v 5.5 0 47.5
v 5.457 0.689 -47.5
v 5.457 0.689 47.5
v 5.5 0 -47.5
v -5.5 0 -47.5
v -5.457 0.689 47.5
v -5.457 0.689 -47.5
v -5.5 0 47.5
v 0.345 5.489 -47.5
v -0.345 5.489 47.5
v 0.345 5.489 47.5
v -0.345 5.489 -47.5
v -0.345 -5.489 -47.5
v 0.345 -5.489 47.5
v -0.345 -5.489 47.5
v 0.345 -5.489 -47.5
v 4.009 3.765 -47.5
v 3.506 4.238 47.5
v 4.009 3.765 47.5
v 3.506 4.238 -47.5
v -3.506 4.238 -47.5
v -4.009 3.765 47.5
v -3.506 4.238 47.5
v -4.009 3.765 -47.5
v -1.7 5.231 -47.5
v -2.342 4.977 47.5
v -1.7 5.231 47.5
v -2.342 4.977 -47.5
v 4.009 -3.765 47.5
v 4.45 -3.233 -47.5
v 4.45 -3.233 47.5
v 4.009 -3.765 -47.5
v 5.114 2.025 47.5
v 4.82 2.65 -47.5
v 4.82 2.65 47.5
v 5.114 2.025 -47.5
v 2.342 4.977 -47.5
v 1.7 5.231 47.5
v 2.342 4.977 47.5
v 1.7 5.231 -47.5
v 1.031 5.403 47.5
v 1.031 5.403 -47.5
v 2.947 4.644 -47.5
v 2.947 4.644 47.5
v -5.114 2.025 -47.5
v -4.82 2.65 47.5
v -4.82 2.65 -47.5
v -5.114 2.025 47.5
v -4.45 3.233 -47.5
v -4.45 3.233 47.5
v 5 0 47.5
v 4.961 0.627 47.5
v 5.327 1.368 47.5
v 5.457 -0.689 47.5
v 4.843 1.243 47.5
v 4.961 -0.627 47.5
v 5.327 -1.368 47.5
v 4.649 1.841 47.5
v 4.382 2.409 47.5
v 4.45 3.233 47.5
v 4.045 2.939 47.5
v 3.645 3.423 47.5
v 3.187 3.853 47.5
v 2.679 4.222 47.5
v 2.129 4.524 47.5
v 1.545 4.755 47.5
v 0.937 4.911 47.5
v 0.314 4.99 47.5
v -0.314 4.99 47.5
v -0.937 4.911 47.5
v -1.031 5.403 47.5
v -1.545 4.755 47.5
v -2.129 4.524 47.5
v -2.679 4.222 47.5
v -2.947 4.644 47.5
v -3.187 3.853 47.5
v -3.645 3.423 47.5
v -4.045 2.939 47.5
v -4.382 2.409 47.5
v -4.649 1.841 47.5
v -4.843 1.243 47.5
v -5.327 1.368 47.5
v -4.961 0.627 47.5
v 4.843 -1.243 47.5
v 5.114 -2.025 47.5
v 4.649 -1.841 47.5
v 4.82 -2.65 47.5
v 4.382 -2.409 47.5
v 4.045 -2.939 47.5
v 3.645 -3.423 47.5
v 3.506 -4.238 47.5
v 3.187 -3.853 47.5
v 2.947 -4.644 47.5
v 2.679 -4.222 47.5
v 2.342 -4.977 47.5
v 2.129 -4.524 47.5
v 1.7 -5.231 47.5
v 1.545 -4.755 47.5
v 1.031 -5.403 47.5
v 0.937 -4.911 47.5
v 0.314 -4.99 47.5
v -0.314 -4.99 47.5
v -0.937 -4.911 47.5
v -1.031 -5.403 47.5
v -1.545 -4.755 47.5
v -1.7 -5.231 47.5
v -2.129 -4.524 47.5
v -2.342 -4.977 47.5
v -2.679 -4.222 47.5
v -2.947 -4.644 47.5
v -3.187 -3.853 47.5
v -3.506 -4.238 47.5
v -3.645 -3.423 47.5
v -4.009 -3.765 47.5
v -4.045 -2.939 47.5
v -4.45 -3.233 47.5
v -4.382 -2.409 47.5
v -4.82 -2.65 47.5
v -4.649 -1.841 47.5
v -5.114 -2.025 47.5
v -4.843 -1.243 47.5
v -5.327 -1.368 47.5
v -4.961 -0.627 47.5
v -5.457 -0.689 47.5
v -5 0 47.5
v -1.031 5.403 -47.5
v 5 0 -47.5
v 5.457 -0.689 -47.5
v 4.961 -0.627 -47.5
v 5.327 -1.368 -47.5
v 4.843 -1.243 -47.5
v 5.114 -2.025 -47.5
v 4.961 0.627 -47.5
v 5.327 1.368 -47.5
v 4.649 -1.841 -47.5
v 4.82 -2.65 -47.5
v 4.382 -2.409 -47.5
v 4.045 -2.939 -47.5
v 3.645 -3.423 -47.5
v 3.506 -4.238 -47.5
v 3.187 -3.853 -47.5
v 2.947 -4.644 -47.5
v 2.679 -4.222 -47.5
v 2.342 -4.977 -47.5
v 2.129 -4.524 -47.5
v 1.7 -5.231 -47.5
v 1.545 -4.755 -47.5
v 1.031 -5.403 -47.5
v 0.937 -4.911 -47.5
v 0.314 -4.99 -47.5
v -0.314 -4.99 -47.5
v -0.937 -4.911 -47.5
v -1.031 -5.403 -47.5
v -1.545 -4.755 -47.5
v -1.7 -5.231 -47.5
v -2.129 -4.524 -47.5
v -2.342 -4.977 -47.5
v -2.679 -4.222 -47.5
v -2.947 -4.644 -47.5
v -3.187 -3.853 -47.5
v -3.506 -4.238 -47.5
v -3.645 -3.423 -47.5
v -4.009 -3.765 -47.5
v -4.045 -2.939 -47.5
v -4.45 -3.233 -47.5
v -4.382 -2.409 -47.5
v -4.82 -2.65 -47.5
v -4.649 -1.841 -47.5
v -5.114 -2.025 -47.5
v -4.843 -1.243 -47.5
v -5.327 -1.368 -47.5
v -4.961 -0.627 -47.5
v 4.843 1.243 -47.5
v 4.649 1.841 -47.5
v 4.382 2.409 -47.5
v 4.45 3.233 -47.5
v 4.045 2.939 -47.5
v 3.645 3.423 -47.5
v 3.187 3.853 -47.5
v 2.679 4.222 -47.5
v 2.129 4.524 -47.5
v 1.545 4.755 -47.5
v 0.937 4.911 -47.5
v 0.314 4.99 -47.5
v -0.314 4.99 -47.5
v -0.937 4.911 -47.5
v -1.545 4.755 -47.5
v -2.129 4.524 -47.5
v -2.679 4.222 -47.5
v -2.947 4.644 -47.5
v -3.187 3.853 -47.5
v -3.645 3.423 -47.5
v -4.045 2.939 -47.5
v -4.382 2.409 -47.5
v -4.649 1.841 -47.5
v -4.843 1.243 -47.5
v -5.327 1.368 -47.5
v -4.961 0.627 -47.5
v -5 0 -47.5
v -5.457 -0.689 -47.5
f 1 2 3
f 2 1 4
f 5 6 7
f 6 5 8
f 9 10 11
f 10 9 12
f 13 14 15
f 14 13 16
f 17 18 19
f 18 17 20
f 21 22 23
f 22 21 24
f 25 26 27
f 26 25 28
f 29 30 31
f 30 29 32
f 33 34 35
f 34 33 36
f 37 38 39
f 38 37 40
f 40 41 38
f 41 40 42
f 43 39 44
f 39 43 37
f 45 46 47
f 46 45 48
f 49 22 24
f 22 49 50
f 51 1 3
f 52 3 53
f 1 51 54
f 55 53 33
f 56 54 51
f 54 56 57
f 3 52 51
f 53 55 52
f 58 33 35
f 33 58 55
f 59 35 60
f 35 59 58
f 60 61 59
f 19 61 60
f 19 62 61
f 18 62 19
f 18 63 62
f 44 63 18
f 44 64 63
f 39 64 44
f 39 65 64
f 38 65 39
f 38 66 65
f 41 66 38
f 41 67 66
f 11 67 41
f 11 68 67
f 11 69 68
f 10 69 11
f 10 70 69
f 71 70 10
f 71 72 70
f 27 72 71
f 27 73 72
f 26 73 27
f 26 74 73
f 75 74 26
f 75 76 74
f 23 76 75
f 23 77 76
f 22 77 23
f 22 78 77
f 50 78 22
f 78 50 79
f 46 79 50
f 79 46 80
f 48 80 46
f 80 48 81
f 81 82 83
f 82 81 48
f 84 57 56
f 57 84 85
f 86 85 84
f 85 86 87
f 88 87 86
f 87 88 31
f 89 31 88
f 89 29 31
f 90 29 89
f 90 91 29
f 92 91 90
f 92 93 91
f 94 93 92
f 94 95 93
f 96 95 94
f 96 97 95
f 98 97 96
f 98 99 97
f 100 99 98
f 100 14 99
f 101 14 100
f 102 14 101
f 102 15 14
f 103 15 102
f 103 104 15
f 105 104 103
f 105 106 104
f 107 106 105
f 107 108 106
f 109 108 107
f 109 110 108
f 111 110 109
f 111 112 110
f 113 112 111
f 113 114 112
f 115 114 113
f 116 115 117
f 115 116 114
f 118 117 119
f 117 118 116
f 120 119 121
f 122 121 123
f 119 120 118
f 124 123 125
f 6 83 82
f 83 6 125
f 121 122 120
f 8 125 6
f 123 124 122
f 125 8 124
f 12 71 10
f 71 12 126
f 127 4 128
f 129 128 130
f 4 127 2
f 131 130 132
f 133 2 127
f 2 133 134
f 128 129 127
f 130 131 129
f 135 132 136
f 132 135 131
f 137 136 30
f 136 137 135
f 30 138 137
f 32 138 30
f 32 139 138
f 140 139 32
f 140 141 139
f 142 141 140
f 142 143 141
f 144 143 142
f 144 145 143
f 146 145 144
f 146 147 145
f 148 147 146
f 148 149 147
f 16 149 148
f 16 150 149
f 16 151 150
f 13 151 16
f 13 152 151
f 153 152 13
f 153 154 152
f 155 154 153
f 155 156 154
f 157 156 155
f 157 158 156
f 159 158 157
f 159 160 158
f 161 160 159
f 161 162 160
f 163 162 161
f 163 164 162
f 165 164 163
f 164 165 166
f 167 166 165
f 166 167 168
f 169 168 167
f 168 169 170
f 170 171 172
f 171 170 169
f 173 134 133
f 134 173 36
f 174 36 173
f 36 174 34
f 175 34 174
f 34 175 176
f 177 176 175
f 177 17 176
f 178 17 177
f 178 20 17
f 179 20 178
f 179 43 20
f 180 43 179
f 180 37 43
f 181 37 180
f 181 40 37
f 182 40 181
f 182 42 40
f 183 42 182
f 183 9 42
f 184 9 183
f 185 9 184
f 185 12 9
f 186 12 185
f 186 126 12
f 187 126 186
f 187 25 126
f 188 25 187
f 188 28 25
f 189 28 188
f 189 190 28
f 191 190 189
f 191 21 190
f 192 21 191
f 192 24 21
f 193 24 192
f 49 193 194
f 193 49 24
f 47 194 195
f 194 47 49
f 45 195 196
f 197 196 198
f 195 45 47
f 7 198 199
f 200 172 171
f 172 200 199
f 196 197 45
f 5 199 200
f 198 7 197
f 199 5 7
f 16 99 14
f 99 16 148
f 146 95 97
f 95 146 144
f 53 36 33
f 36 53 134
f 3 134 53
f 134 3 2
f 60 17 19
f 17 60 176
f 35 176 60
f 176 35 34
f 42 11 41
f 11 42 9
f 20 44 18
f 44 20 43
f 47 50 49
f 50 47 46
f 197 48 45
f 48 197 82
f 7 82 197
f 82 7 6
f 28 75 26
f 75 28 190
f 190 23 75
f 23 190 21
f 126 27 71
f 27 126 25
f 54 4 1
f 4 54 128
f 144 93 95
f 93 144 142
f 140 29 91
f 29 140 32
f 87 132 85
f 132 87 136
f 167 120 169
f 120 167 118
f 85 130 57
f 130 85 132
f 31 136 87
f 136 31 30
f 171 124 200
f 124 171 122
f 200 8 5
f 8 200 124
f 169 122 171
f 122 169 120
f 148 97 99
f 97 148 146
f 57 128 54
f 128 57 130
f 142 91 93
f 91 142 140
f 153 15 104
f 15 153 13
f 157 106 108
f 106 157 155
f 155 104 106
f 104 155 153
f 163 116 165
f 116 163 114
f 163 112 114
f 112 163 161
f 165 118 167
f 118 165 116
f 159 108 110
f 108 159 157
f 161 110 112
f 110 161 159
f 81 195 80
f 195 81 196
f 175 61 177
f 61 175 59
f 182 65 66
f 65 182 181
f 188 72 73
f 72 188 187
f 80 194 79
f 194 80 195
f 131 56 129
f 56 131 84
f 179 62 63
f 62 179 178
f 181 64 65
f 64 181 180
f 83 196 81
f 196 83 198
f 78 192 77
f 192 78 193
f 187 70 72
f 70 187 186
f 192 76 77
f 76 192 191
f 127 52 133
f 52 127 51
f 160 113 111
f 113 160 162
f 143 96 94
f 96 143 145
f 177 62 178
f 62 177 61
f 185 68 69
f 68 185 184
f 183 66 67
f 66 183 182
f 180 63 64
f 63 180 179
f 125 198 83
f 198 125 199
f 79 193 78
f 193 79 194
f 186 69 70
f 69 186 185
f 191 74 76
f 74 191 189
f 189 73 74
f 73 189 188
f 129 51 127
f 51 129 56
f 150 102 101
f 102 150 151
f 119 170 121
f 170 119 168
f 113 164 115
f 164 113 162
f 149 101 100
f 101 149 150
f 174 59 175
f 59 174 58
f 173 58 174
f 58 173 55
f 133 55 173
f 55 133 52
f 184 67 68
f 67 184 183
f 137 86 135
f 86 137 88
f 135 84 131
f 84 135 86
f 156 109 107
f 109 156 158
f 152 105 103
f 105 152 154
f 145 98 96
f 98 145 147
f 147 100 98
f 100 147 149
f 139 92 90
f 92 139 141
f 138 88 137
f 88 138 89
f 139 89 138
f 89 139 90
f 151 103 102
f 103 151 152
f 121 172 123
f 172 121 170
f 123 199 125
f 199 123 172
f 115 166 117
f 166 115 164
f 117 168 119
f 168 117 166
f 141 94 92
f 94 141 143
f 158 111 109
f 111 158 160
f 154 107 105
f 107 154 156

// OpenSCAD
$fn = 50;


difference() {
	union() {
		translate(v = [0, 0, -47.5000000000]) {
			cylinder(h = 95, r = 5.5000000000);
		}
	}
	union() {
		translate(v = [0, 0, -100.0000000000]) {
			cylinder(h = 200, r = 5.0000000000);
		}
	}
}
